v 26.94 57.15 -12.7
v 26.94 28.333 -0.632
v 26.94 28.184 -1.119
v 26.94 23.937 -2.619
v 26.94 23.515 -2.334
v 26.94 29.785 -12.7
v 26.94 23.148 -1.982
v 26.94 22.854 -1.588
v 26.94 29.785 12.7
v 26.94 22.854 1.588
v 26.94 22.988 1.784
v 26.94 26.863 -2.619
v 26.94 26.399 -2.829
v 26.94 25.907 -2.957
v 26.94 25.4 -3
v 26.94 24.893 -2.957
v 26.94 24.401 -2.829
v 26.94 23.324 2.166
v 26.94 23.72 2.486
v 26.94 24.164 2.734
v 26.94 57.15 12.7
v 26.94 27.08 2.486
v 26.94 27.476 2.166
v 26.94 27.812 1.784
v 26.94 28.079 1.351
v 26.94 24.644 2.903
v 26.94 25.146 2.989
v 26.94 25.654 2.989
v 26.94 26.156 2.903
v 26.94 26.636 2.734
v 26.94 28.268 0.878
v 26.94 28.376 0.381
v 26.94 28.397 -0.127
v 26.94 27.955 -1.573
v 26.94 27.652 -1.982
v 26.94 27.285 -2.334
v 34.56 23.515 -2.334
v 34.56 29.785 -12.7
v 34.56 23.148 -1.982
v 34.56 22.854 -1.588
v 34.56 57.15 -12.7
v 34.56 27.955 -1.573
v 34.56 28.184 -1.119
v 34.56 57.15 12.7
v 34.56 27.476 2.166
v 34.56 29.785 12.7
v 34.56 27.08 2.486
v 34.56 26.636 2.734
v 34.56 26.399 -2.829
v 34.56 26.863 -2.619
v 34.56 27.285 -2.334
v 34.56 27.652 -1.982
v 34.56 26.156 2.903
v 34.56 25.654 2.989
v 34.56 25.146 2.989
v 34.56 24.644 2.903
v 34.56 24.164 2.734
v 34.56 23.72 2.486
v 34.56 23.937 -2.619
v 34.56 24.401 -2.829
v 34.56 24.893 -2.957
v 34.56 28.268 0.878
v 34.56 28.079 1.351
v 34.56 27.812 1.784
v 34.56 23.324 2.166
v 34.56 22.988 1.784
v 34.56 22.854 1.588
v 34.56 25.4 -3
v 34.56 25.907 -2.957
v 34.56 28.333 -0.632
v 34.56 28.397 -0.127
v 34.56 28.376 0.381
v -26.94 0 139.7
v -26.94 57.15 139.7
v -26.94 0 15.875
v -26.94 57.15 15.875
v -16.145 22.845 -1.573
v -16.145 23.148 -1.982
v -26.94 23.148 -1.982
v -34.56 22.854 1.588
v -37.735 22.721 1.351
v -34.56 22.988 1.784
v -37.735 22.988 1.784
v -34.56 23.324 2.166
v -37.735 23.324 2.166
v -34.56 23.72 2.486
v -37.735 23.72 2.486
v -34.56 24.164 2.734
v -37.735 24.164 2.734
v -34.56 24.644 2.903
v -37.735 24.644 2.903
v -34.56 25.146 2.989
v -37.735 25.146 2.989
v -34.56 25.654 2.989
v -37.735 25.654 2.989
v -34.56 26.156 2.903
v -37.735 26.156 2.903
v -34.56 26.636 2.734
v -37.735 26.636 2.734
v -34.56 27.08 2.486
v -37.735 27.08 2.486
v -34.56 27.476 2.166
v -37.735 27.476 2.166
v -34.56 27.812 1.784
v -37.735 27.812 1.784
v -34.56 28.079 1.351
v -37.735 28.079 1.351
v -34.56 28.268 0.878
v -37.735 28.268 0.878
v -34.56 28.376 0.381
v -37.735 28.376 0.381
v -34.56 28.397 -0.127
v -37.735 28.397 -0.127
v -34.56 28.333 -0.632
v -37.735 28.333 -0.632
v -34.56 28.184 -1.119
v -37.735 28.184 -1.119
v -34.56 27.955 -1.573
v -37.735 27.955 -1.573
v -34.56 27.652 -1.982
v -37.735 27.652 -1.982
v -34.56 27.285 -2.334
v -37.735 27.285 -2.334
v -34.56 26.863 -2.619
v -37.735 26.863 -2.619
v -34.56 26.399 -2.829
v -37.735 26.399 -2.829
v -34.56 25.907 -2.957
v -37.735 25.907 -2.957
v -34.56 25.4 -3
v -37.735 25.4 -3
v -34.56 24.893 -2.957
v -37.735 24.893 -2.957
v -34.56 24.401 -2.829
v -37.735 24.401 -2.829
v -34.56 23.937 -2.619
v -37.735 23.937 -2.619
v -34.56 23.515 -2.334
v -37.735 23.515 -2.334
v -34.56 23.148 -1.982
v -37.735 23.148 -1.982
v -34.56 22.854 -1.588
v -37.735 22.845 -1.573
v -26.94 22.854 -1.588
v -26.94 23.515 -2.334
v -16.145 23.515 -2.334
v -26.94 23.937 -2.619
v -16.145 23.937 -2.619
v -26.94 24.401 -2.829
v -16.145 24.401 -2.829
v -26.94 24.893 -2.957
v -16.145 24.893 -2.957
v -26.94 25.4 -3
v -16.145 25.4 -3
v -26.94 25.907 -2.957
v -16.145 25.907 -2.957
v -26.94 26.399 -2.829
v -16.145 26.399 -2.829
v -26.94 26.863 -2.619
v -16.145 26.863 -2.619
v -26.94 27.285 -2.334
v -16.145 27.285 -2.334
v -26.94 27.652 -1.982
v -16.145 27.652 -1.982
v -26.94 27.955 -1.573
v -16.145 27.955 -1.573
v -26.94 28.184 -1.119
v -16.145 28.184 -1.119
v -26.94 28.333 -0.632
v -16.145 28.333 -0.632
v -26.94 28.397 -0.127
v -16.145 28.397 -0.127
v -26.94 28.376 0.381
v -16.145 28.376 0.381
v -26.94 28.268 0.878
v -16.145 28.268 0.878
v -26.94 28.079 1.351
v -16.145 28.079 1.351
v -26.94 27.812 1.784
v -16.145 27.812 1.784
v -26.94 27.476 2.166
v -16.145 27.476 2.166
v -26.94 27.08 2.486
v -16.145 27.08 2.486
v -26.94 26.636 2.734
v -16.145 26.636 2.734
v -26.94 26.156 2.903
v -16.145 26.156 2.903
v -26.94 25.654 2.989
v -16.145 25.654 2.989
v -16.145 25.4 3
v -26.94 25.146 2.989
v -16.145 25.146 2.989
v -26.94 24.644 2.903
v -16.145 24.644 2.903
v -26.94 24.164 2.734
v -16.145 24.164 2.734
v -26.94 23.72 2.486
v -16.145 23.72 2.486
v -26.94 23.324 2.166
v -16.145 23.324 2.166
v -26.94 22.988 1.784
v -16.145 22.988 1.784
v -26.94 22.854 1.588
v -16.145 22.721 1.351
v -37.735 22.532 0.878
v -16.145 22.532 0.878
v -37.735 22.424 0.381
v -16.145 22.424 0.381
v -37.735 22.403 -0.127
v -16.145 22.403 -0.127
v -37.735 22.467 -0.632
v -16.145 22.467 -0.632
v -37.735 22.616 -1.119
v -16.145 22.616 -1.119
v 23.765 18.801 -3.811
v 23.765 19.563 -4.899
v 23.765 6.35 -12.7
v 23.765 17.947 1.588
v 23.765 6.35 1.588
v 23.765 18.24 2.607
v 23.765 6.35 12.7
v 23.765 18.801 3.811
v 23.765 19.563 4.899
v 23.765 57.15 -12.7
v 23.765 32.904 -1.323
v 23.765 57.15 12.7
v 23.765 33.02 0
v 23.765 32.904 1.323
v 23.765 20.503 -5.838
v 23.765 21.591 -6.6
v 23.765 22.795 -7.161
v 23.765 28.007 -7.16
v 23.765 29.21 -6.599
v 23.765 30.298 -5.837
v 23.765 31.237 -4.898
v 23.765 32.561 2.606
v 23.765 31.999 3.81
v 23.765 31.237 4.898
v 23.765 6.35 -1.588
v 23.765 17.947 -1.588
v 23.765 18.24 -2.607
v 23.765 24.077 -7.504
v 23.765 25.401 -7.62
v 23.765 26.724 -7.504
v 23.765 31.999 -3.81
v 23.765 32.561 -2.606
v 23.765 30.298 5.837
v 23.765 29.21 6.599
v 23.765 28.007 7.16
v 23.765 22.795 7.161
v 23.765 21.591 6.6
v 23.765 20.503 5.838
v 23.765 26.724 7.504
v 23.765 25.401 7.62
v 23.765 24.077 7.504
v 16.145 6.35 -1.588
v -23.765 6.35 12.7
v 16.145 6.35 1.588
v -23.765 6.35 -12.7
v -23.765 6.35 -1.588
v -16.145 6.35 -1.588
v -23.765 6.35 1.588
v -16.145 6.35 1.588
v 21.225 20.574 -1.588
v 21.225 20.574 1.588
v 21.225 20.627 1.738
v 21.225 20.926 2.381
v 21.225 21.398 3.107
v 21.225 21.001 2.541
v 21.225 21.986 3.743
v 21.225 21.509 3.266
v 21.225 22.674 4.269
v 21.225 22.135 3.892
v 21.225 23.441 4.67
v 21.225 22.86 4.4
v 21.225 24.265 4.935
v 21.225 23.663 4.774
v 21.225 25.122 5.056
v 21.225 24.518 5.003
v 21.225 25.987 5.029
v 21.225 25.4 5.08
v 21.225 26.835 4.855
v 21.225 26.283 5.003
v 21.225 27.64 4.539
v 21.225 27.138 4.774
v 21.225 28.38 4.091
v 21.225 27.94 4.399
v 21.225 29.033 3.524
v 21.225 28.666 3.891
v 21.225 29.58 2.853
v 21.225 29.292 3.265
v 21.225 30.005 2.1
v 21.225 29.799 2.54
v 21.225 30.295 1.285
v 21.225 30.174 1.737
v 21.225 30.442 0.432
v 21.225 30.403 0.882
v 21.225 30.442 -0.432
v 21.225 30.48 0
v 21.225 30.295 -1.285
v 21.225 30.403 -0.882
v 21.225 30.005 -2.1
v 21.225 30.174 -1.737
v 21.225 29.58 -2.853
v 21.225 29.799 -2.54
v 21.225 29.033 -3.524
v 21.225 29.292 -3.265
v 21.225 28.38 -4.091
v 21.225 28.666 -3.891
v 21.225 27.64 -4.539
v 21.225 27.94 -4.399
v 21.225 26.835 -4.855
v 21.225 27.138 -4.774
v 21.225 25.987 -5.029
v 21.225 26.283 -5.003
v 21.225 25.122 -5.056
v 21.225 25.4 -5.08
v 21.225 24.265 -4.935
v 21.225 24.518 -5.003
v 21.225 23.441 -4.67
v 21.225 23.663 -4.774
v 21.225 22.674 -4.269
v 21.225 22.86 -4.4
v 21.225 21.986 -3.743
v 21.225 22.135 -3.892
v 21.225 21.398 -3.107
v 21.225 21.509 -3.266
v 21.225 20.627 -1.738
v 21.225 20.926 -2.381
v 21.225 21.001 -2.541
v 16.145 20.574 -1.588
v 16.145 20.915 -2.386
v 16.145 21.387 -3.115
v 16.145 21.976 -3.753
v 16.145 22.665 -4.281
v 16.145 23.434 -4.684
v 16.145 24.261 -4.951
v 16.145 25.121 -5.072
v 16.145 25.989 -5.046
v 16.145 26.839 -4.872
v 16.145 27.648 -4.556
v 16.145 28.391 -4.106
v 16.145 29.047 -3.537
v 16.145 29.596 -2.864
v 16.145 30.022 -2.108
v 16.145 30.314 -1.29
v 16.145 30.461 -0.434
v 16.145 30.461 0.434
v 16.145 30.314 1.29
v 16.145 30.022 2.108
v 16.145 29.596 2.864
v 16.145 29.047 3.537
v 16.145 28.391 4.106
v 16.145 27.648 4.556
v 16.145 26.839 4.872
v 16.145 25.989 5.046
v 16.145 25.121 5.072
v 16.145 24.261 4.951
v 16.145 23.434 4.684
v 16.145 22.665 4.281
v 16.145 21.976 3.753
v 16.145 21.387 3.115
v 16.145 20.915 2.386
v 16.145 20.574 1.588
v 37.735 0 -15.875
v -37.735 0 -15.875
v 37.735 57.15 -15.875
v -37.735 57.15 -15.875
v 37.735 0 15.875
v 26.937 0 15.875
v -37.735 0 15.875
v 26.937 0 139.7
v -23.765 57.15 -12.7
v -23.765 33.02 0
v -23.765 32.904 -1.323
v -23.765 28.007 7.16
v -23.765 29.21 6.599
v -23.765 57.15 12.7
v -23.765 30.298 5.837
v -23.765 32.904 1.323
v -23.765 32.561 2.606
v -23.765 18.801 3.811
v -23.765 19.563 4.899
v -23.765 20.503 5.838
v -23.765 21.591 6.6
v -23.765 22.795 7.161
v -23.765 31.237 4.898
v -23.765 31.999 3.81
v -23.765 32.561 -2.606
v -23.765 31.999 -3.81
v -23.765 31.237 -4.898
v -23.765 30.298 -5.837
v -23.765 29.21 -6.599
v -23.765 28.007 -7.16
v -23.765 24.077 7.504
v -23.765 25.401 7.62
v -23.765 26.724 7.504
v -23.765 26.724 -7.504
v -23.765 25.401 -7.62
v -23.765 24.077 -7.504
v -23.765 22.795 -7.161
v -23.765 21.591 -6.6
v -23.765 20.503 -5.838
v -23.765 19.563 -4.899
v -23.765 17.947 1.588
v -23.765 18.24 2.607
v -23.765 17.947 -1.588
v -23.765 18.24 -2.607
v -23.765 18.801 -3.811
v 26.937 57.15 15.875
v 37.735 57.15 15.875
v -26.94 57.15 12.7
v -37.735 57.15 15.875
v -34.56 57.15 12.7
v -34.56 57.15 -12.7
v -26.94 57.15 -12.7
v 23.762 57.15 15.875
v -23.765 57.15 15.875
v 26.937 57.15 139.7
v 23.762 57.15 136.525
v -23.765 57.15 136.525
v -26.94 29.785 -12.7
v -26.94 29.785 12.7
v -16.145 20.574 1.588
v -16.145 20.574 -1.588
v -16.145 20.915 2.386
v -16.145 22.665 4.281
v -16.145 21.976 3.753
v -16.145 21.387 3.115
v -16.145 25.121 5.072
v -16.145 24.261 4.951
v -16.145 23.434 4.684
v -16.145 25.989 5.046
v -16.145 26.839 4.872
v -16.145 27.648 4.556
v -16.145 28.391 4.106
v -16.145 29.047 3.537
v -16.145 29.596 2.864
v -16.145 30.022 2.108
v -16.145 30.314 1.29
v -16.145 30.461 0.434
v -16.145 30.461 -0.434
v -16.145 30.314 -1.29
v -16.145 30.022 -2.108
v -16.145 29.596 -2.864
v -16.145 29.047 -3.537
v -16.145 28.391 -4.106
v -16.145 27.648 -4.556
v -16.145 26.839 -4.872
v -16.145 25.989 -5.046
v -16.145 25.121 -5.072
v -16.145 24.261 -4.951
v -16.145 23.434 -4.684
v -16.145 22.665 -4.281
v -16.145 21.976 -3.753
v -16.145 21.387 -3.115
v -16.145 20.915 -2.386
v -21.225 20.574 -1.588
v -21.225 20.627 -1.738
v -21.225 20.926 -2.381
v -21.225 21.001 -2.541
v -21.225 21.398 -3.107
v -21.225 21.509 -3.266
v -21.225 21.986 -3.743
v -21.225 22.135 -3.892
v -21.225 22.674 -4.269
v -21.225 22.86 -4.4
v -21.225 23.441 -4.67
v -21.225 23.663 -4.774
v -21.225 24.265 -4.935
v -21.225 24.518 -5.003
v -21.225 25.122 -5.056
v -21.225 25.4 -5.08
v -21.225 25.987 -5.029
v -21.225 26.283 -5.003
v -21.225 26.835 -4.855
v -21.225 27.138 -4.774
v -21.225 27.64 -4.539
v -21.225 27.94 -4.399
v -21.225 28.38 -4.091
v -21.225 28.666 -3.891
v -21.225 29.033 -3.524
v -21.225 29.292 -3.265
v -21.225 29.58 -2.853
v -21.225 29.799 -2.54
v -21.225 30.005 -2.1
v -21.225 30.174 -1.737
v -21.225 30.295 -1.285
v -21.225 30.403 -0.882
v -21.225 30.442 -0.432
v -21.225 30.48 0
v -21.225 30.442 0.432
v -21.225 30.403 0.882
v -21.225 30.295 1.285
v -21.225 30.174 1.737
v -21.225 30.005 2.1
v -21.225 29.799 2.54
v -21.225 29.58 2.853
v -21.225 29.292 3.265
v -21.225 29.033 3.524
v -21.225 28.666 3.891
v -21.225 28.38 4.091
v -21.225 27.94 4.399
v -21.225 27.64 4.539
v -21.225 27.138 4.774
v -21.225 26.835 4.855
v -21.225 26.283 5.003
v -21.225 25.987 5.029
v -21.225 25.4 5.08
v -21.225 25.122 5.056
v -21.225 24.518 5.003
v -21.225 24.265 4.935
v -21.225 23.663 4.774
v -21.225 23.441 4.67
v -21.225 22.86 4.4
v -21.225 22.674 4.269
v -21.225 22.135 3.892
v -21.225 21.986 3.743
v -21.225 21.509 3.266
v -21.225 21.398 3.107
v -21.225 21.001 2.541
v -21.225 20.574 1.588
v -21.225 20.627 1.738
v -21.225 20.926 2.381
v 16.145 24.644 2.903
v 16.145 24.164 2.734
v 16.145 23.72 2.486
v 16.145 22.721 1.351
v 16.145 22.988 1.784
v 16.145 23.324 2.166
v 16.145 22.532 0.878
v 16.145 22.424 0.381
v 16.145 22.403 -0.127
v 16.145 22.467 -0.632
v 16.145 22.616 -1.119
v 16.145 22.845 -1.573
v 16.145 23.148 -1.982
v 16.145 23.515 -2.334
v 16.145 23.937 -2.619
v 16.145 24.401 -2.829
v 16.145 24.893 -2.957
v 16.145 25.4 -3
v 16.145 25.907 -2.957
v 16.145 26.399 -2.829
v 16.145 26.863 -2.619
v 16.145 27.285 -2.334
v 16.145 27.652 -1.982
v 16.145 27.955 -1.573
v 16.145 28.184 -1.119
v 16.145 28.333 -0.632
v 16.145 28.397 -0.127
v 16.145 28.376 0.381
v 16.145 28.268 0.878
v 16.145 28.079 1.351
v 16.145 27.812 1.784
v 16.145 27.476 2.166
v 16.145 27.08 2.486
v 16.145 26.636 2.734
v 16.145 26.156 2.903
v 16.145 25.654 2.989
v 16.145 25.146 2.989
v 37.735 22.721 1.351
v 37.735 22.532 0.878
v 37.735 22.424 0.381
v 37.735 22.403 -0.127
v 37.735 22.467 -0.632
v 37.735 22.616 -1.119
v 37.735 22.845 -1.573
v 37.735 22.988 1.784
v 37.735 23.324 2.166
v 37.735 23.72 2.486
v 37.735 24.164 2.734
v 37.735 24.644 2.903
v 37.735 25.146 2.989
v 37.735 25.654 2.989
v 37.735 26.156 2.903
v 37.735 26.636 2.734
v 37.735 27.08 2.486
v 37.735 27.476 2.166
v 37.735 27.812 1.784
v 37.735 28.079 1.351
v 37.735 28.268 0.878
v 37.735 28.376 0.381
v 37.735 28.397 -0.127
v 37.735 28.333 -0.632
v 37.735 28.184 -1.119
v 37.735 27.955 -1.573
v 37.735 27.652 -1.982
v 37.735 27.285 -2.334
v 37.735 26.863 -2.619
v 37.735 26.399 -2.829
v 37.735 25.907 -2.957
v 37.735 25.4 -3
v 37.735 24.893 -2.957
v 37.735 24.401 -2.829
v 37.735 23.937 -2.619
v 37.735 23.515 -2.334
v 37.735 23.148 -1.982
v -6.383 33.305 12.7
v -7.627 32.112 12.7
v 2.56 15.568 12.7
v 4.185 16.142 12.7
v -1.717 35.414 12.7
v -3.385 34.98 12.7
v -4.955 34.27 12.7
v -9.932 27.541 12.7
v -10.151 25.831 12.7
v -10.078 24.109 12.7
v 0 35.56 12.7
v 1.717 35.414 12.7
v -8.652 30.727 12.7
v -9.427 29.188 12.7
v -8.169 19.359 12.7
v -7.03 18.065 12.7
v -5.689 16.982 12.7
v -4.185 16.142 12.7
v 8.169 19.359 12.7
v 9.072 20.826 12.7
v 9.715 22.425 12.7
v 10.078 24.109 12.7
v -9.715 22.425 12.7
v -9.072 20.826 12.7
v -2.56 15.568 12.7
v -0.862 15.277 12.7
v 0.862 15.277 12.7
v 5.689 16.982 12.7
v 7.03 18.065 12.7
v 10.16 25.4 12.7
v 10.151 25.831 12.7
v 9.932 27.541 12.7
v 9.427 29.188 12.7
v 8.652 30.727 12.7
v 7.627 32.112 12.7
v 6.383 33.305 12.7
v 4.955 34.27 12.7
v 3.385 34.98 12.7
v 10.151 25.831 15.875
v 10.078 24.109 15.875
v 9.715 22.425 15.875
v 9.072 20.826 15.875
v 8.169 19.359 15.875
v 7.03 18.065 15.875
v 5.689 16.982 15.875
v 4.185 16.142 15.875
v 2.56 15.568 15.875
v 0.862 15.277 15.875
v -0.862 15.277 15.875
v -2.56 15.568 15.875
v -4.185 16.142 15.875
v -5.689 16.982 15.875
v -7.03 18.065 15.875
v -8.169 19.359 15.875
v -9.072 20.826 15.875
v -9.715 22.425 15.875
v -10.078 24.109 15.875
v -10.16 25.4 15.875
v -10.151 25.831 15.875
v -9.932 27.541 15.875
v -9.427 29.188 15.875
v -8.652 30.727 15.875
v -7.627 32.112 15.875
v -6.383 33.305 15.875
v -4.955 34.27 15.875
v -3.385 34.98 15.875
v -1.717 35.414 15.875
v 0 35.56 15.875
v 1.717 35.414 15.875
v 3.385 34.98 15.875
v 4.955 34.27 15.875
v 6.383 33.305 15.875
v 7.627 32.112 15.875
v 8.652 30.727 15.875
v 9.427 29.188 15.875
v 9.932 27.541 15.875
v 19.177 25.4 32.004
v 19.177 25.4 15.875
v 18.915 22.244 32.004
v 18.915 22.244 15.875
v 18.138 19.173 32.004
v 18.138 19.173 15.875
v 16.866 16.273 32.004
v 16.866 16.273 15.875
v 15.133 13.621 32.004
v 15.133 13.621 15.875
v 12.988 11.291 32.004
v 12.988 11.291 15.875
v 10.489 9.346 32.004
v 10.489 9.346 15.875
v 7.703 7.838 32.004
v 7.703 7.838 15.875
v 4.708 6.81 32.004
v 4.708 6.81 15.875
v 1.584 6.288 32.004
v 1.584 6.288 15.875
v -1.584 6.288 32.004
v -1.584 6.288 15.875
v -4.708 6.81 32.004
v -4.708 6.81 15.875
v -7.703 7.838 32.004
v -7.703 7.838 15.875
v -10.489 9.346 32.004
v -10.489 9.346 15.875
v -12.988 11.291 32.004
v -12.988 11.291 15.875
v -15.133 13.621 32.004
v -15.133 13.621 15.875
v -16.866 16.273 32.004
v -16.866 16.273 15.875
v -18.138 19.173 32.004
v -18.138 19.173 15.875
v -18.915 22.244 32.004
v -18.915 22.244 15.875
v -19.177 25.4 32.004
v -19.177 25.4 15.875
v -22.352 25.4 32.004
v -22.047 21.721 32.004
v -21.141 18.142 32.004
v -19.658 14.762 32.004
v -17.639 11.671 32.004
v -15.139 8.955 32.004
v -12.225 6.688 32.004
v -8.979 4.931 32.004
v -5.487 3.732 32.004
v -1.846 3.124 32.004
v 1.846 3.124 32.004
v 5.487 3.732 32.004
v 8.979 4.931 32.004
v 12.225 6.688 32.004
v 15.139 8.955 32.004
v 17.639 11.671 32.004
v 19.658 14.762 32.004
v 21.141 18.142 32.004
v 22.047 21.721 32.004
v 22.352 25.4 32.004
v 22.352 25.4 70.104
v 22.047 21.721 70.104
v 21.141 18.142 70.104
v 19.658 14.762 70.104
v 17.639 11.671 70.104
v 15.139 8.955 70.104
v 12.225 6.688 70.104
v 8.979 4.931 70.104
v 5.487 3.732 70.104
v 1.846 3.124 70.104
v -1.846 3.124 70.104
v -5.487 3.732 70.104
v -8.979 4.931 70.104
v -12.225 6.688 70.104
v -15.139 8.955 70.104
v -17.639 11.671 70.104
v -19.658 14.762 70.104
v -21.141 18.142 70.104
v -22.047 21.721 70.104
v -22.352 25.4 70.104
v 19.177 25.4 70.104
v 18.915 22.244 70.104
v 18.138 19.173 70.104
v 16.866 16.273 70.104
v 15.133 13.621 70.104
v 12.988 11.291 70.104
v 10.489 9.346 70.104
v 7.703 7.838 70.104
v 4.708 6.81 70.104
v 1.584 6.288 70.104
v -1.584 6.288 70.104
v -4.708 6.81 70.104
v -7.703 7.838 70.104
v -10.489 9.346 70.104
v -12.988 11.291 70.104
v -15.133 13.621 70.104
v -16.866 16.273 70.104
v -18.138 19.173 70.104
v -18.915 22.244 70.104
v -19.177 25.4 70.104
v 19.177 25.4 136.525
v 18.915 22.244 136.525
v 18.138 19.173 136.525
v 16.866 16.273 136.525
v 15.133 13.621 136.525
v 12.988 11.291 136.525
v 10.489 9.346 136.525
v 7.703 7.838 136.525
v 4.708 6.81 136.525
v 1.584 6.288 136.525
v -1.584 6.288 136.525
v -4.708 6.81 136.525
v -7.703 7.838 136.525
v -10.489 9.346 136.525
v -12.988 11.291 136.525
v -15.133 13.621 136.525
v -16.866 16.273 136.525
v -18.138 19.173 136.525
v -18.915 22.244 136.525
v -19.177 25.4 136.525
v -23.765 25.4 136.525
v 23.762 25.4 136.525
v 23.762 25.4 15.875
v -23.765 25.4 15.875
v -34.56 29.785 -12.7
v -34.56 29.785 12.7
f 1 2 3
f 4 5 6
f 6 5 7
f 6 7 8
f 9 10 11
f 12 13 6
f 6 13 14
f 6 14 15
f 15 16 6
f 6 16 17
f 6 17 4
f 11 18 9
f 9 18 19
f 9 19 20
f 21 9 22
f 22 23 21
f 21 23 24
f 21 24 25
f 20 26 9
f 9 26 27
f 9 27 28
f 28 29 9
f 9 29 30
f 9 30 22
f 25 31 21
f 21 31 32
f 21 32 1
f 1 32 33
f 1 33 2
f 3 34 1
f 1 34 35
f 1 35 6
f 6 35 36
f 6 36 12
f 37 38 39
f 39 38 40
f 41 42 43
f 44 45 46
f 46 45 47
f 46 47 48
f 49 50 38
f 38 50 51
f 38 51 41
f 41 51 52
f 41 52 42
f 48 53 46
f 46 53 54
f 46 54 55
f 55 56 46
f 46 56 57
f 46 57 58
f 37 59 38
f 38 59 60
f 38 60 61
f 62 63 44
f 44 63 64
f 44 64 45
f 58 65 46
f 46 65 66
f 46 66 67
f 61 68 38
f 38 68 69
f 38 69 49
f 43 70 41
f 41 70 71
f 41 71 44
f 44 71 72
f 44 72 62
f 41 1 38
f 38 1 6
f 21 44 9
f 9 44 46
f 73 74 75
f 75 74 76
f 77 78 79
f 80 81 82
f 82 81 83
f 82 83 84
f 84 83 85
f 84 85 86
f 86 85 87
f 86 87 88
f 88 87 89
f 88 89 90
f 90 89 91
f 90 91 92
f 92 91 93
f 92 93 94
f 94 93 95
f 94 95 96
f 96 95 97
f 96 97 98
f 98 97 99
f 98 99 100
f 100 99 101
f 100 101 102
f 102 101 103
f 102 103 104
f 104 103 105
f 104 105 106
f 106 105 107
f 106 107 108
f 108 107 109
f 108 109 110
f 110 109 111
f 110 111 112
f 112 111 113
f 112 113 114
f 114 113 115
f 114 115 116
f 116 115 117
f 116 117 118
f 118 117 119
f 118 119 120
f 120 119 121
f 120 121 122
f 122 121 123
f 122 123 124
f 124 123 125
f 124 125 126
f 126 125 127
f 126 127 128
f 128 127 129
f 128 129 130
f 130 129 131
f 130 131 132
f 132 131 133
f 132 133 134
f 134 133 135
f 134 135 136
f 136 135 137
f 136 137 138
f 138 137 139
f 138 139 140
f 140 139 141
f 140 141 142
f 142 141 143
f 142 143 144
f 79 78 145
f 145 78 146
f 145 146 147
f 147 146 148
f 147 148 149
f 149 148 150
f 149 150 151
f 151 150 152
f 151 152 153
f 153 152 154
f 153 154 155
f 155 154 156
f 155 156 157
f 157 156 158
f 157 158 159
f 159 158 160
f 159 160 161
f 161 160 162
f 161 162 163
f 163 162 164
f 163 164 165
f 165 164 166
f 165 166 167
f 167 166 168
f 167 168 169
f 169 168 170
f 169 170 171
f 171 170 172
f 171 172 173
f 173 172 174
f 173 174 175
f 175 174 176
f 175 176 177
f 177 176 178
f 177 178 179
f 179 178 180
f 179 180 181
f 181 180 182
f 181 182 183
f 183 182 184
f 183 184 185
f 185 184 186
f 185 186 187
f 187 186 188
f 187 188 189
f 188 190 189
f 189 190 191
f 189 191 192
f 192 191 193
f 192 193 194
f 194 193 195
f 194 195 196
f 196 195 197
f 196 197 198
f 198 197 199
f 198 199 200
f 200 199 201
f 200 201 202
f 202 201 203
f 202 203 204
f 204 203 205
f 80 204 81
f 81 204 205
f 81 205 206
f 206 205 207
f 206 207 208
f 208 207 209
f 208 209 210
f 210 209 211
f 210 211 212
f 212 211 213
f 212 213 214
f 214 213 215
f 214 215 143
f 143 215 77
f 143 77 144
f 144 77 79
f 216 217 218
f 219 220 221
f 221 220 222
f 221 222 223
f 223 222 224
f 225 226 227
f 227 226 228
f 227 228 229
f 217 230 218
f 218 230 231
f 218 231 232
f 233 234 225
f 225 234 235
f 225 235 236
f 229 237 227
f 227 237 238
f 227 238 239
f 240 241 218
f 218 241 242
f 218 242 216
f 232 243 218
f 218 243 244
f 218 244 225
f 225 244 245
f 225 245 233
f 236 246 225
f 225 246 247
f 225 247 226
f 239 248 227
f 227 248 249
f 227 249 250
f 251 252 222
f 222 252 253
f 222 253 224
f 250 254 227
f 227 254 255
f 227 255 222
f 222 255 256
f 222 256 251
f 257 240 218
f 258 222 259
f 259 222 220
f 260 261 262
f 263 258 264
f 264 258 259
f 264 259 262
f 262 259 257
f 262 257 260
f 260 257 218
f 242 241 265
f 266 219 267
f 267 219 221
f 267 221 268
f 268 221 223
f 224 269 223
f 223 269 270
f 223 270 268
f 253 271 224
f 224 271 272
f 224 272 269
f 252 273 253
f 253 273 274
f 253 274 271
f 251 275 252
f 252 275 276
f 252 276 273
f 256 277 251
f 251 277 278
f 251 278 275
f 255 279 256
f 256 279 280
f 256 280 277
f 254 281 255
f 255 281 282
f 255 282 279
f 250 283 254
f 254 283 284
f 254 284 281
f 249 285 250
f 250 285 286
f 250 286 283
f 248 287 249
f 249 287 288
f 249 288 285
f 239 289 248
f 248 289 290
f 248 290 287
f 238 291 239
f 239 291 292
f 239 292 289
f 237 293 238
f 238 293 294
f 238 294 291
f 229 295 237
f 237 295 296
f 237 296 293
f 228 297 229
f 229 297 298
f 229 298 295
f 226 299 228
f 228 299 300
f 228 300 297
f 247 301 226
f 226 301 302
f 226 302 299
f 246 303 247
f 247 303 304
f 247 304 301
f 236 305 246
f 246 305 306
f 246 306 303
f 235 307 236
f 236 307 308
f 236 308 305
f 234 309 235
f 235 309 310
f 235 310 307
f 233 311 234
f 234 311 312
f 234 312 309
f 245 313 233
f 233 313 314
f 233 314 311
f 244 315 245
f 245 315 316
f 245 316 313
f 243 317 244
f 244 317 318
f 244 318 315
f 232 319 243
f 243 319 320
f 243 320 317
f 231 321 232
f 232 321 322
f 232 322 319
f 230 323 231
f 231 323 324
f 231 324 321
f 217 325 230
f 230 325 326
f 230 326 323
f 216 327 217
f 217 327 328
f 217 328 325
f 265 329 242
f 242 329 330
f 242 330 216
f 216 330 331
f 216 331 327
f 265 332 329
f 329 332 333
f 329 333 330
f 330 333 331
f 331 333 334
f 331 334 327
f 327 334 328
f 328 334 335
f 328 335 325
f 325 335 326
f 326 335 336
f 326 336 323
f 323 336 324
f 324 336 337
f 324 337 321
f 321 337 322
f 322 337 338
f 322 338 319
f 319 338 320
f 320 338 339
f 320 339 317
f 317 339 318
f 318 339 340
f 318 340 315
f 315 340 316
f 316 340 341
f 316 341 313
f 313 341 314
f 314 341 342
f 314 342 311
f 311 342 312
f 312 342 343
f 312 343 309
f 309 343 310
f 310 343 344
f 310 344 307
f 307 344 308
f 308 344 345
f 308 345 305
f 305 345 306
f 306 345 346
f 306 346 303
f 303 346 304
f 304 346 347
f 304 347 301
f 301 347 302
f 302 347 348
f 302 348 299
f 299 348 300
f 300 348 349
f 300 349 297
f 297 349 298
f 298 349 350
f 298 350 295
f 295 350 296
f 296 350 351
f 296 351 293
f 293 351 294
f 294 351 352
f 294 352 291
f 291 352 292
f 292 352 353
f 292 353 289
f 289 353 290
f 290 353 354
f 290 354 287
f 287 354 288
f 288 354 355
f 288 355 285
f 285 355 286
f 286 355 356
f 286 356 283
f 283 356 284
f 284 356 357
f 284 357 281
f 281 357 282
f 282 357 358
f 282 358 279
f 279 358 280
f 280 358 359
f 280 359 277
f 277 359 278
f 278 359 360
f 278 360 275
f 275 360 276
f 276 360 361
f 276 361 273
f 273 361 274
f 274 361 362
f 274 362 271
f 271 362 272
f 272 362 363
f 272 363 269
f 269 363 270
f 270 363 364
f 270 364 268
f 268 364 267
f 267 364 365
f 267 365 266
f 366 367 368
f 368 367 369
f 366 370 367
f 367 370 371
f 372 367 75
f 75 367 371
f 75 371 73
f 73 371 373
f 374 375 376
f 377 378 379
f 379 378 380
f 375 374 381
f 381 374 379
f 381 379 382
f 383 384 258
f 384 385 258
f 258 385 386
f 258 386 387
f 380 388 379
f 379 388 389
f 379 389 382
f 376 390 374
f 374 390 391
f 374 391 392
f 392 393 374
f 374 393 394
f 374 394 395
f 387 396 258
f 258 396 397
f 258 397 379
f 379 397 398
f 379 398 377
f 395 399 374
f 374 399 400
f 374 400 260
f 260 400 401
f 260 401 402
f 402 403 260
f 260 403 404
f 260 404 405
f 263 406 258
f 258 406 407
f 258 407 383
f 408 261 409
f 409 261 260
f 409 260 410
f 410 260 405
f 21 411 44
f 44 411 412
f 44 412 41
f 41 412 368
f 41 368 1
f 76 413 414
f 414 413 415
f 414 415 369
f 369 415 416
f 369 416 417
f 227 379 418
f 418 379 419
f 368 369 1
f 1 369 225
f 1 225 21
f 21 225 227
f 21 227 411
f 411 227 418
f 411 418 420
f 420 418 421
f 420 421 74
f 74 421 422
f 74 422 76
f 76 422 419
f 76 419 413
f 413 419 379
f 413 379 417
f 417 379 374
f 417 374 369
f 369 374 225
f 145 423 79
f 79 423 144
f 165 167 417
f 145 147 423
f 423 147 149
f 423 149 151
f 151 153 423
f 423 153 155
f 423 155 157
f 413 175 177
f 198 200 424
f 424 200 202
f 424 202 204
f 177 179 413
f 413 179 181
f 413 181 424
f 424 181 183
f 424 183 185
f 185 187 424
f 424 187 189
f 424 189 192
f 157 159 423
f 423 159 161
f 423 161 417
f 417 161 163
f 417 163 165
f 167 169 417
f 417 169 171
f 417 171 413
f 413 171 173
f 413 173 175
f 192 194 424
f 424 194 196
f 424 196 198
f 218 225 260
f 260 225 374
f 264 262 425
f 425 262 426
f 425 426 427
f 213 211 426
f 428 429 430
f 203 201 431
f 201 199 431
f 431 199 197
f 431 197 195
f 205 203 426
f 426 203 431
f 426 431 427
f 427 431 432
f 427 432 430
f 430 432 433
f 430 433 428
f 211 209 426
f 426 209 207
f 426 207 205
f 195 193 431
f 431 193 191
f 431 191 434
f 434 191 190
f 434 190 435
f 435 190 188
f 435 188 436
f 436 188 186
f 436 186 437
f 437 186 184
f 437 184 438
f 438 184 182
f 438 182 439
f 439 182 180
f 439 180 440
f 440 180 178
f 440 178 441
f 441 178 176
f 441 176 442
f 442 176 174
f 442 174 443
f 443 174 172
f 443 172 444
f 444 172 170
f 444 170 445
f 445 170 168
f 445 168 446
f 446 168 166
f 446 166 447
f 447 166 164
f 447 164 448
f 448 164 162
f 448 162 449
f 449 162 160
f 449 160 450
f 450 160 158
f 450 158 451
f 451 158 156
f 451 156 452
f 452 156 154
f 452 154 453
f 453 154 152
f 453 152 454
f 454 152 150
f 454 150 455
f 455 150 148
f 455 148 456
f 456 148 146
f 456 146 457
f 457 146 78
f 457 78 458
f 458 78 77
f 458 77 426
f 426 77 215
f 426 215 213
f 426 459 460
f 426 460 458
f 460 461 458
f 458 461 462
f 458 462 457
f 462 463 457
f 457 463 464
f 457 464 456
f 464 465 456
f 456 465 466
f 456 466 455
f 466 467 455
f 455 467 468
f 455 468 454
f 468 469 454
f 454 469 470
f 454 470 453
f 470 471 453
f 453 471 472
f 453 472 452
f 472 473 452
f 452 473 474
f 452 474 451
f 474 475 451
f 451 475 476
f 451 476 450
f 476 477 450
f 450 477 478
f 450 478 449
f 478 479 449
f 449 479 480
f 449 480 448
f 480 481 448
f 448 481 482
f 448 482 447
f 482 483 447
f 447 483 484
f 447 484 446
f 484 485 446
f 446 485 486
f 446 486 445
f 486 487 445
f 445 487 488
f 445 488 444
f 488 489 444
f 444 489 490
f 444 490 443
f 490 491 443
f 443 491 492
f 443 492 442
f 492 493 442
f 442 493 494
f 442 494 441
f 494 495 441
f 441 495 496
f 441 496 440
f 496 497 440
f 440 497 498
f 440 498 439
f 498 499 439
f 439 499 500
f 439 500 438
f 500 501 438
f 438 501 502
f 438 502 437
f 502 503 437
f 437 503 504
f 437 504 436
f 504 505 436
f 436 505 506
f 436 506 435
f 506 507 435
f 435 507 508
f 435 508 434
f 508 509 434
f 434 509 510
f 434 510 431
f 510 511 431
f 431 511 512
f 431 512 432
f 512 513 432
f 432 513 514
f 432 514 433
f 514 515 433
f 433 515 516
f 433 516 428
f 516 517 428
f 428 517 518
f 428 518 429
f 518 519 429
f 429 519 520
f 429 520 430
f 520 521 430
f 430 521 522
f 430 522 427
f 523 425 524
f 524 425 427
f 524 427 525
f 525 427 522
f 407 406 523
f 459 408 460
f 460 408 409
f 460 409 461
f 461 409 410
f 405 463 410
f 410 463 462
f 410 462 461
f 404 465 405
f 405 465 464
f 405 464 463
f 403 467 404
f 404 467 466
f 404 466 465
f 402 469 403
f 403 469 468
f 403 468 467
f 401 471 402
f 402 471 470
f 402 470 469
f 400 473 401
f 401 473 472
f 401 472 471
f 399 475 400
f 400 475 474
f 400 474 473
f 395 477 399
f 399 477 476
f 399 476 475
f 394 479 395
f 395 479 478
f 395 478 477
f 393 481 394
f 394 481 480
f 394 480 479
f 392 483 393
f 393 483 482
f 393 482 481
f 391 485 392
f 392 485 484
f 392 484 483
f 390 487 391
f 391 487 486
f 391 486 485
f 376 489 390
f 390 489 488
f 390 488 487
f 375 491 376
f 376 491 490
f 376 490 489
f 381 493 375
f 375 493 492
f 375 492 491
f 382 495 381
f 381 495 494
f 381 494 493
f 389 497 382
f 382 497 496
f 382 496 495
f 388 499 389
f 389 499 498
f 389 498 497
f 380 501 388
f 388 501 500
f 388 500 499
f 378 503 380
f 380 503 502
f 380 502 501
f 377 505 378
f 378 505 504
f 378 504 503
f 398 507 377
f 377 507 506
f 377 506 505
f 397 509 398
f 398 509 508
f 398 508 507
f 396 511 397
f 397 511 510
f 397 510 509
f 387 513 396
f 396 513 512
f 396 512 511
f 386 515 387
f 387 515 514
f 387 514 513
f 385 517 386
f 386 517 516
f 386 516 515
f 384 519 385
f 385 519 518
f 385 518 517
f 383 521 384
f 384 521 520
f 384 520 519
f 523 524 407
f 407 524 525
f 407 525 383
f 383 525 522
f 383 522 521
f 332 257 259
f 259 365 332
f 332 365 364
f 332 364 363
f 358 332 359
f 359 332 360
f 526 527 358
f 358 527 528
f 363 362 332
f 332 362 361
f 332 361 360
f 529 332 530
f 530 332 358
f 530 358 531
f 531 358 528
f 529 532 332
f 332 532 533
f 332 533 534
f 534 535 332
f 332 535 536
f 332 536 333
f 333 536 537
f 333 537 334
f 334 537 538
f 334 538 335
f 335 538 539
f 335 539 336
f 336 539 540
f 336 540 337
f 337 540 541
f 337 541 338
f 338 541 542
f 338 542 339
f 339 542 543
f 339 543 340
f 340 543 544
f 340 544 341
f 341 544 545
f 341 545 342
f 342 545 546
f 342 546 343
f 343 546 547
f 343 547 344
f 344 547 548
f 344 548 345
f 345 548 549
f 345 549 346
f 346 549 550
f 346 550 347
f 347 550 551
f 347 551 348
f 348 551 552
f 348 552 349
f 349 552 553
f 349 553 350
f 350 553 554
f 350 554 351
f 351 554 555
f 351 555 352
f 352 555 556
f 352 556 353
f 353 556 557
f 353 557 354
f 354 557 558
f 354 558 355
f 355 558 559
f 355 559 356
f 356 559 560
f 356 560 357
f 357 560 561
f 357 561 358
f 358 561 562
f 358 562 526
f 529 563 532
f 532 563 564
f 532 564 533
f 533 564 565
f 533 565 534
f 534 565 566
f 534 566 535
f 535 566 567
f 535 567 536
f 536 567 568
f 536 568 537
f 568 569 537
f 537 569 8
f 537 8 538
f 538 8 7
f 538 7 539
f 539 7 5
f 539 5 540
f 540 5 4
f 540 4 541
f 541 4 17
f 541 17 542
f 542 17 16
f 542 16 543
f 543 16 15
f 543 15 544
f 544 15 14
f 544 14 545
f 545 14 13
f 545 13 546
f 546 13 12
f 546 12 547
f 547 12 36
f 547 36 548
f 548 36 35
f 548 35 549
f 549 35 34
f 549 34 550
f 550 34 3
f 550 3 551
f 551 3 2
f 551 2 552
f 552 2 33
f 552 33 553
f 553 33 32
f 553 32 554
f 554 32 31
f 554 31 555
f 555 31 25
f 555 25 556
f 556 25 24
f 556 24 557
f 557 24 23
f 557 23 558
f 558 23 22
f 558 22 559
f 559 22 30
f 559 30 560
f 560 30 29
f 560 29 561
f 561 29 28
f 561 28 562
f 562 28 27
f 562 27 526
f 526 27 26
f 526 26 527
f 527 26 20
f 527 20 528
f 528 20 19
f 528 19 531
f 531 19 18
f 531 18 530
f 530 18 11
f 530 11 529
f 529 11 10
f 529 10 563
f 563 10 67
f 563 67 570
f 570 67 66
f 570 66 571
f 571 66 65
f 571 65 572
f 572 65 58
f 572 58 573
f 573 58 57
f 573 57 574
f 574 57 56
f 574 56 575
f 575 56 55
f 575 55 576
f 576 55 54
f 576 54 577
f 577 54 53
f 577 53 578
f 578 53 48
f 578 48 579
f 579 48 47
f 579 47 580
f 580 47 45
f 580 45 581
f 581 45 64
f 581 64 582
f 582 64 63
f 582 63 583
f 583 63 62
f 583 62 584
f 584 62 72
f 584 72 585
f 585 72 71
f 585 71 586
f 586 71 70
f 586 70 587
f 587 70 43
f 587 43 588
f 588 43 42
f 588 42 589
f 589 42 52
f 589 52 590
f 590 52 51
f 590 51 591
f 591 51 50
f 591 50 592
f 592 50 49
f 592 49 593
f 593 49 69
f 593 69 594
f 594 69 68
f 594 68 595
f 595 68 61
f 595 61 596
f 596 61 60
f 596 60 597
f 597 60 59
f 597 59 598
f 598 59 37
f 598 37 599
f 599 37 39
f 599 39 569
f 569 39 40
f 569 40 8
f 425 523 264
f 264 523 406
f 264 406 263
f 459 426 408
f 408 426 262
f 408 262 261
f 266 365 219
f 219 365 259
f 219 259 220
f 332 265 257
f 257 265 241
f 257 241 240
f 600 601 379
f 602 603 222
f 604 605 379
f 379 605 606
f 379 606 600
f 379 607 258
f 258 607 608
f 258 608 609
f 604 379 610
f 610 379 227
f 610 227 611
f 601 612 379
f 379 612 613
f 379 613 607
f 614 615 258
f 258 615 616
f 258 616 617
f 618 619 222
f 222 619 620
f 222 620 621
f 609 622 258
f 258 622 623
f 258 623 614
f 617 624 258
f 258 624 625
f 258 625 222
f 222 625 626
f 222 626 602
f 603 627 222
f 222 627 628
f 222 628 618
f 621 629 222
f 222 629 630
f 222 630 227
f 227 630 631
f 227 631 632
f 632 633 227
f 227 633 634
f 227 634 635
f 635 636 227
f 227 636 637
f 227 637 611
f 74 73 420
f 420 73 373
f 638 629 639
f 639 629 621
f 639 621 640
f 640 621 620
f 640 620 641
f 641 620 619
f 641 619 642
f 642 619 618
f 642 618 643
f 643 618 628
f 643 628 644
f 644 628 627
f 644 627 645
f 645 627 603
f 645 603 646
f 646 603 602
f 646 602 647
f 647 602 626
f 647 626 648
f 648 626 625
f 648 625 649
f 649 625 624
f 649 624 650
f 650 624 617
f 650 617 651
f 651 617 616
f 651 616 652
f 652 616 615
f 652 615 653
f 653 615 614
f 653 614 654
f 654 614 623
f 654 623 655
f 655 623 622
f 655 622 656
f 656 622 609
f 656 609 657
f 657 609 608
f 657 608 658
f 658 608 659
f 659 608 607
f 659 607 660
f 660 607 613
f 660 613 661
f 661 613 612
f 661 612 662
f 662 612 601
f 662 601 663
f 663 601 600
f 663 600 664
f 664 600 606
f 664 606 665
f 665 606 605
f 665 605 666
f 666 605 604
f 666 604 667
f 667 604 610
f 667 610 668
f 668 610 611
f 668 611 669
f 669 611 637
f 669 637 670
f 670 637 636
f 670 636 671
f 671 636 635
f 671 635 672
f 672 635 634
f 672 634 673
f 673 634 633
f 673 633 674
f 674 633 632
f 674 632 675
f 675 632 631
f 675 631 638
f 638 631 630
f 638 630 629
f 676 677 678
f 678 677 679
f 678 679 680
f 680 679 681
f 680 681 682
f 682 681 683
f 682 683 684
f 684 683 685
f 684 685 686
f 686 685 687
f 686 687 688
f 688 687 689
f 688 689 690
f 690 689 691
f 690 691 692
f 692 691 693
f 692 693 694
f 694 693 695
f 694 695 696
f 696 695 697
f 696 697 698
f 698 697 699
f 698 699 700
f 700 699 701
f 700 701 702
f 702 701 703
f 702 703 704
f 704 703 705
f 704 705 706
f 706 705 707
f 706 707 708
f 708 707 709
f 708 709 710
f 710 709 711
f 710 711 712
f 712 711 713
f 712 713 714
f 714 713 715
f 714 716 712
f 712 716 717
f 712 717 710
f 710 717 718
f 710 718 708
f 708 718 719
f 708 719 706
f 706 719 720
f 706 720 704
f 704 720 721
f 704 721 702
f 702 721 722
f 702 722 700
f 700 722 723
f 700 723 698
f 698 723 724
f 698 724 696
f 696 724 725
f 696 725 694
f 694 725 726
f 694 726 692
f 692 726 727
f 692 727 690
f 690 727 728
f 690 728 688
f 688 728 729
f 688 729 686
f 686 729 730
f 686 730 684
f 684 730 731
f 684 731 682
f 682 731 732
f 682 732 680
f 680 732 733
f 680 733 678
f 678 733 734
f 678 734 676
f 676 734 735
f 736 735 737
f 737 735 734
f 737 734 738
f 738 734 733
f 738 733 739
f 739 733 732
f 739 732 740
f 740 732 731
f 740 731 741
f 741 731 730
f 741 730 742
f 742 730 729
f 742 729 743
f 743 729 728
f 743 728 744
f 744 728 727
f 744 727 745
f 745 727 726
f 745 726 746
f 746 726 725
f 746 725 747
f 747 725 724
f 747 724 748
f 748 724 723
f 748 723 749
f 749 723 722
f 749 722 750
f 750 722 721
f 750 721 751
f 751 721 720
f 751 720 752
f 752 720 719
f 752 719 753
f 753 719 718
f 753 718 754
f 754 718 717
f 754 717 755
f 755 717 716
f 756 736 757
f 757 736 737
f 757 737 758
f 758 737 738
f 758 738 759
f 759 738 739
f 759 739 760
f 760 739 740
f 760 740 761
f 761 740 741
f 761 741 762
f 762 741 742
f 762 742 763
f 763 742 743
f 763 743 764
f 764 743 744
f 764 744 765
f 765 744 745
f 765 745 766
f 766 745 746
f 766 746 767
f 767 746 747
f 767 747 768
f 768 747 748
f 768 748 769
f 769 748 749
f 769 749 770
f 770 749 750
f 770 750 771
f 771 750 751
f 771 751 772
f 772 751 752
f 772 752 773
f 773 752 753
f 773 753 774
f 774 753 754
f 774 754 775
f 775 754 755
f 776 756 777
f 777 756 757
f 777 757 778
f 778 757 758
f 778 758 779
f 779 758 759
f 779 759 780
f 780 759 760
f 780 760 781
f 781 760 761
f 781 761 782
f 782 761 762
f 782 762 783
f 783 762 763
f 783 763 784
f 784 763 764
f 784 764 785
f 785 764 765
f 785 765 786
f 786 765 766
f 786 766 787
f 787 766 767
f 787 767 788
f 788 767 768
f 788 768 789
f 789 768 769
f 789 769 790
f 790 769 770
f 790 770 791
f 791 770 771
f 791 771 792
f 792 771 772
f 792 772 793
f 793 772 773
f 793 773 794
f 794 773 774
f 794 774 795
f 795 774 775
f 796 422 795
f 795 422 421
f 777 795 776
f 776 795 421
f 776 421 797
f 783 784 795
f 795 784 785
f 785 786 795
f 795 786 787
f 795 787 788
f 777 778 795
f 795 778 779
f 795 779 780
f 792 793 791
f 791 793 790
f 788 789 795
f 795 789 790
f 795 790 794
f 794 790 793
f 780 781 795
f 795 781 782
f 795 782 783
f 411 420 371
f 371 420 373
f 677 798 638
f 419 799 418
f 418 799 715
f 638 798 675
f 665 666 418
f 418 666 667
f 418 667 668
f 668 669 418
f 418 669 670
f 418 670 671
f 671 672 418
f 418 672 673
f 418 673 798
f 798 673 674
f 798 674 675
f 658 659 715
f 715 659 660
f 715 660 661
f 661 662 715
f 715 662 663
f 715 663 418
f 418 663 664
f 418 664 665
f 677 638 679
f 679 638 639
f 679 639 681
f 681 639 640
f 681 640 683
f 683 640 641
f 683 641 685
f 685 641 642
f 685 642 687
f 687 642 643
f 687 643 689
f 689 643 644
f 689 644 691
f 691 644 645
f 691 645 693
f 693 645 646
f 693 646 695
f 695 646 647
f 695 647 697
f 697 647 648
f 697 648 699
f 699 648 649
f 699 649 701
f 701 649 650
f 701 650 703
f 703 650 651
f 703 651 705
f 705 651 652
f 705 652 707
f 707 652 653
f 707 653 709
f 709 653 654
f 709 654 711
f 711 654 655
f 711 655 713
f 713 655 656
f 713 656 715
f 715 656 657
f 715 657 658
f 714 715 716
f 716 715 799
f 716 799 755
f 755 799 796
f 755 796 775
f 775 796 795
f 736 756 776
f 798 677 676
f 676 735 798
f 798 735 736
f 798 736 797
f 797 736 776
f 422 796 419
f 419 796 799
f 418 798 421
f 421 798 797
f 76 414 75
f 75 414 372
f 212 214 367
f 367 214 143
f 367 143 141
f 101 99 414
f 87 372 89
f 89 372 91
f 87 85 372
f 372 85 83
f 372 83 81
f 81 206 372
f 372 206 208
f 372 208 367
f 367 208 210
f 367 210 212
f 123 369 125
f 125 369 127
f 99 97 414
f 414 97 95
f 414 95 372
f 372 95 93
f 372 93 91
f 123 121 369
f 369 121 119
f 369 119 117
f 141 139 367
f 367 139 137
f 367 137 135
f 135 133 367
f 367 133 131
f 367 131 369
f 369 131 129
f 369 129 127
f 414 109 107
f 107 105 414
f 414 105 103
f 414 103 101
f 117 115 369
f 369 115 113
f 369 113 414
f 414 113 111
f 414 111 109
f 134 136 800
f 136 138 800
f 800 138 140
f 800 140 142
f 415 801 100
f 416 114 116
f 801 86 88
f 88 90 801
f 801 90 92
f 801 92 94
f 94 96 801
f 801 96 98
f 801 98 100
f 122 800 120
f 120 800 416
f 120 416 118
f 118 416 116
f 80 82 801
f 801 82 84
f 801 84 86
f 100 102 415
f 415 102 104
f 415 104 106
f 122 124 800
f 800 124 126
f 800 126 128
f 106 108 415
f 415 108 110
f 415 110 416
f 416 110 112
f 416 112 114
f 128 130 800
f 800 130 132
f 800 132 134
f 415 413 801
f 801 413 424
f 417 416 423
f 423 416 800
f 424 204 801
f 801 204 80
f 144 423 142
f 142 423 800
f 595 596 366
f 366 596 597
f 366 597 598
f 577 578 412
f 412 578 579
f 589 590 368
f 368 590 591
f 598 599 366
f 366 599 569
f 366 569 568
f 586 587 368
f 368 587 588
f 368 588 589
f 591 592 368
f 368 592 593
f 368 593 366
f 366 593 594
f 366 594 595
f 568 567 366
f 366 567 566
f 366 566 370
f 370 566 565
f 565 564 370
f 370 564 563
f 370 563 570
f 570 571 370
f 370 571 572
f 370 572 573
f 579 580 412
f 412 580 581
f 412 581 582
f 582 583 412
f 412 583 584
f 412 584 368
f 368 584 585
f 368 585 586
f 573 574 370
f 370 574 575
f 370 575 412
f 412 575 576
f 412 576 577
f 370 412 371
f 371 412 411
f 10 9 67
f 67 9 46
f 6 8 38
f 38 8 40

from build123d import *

# Parameters (mm, degrees)
BOSS_EXTRUDE1_DEPTH      = 12.7
SKETCH2_W                = 53.879496
SKETCH2_H                = 57.15
BOSS_EXTRUDE2_DEPTH      = 3.175
CUT_EXTRUDE2_DEPTH       = 66.145131417
CUT_EXTRUDE2_DEPTH_BACK  = 66.145131417
SKETCH3_R                = 3
SKETCH5_W                = 53.879496
SKETCH5_H                = 25.4
SKETCH5_R                = 3.4925
BOSS_EXTRUDE3_DEPTH      = 6.35
SKETCH7_W                = 7.62
SKETCH7_H                = 15.609396712
BOSS_EXTRUDE7_DEPTH      = 1.5875
SKETCH8_W                = 53.879496
SKETCH8_H                = 57.15
BOSS_EXTRUDE8_DEPTH      = 127
CUT_EXTRUDE7_DEPTH       = 154.323065852
CUT_EXTRUDE7_DEPTH_BACK  = 154.323065852
SKETCH13_W               = 0.002356984
SKETCH13_H               = 124.229061331
CUT_EXTRUDE8_START       = -31.75
SKETCH14_W               = 47.527139016
SKETCH14_H               = 120.65
CUT_EXTRUDE8_DEPTH       = 31.75
CUT_EXTRUDE9_DEPTH       = 4.229066359
SKETCH16_W               = 53.879496
SKETCH16_H               = 25.4
CUT_EXTRUDE10_DEPTH      = 152.071109158
SKETCH18_W               = 13.97
SKETCH18_H               = 31.75
SKETCH18_W_2             = 7.62
SKETCH18_H_2             = 25.4
BOSS_EXTRUDE10_DEPTH     = 57.15
BOSS_EXTRUDE11_START     = -34.559748
BOSS_EXTRUDE11_DEPTH     = 7.62
BOSS_EXTRUDE12_START     = 26.939748
BOSS_EXTRUDE12_DEPTH     = 7.62
CUT_EXTRUDE11_DEPTH      = 163.985890519
CUT_EXTRUDE11_DEPTH_BACK = 163.985890519
SKETCH20_R               = 3


with BuildPart() as part:
    # Sketch1 → Boss-Extrude1 (new, symmetric)
    with BuildSketch(Plane.XY):
        Polygon((-26.939748, 0), (26.939748, 0), (26.939748, 6.35), (26.939748, 57.15), (23.764748, 57.15), (23.764748, 6.35), (-23.764748, 6.35), (-23.764748, 57.15), (-26.939748, 57.15), (-26.939748, 6.35), align=None)
    extrude(amount=BOSS_EXTRUDE1_DEPTH, both=True)

    # Sketch2 → Boss-Extrude2 (add)
    with BuildSketch(Plane(origin=(0, 0, -12.7), x_dir=(-1, 0, 0), z_dir=(0, 0, -1))):
        with Locations((0, 28.575)):
            Rectangle(SKETCH2_W, SKETCH2_H)
    extrude(amount=BOSS_EXTRUDE2_DEPTH)

    # Sketch6 → Revolve2 (revolve)
    with BuildSketch(Plane.XY, mode=Mode.PRIVATE) as revolve2_sk:
        Polygon((-23.764748, 25.4), (-16.144748, 25.4), (-16.144748, 30.48), (-21.224748, 30.48), (-23.764748, 33.02), align=None)
        Polygon((23.764748, 33.02), (23.764748, 25.4), (16.144748, 25.4), (16.144748, 30.48), (21.224748, 30.48), align=None)
    revolve(revolve2_sk.sketch.rotate(Axis((-23.764748, 25.4, 0), (1, 0, 0)), 90), axis=Axis((-23.764748, 25.4, 0), (1, 0, 0)))

    # Sketch3 → Cut-Extrude2 (cut, two sides: drawn at the far end of the back side and taken through both)
    with BuildSketch(Plane(origin=(0, 0, 0), x_dir=(0, 0, -1), z_dir=(1, 0, 0)).offset(-CUT_EXTRUDE2_DEPTH_BACK)):
        with Locations((0, 25.4)):
            Circle(SKETCH3_R)
    extrude(amount=CUT_EXTRUDE2_DEPTH + CUT_EXTRUDE2_DEPTH_BACK, mode=Mode.SUBTRACT)

    # Sketch5 → Boss-Extrude3 (add)
    with BuildSketch(Plane.XZ):
        with Locations((0, -28.575)):
            Rectangle(SKETCH5_W, SKETCH5_H)
        with Locations(Location((7.889748, -28.575, 0), (0, 0, 270))):
            Circle(SKETCH5_R, mode=Mode.SUBTRACT)
        with Locations(Location((-17.510252, -28.575, 0), (0, 0, 270))):
            Circle(SKETCH5_R, mode=Mode.SUBTRACT)
    extrude(amount=-BOSS_EXTRUDE3_DEPTH)

    # Sketch7 → Boss-Extrude7 (add, symmetric)
    with BuildSketch(Plane.XY):
        with Locations((-19.954748, 14.154698356)):
            Rectangle(SKETCH7_W, SKETCH7_H)
        with Locations((19.954748, 14.154698356)):
            Rectangle(SKETCH7_W, SKETCH7_H)
    extrude(amount=BOSS_EXTRUDE7_DEPTH, both=True)

    # Sketch8 → Boss-Extrude8 (add)
    with BuildSketch(Plane.XY.offset(12.7)):
        with Locations((0, 28.575)):
            Rectangle(SKETCH8_W, SKETCH8_H)
    extrude(amount=BOSS_EXTRUDE8_DEPTH)

    # Sketch9 → Cut-Revolve1 (revolve, cut)
    with BuildSketch(Plane(origin=(0, 0, 0), x_dir=(0, 0, -1), z_dir=(1, 0, 0))):
        Polygon((-70.104, 47.752), (-70.104, 44.577), (-136.525, 44.577), (-136.525, 25.4), (-70.104, 25.4), (0, 25.4), (0, 35.56), (-20.104066359, 35.56), (-20.104066359, 44.577), (-32.004, 44.577), (-32.004, 47.752), align=None)
    revolve(axis=Axis((0, 25.4, 0), (0, 0, 1)), mode=Mode.SUBTRACT)

    # Sketch13 → Cut-Extrude7 (cut, two sides: drawn at the far end of the back side and taken through both)
    with BuildSketch(Plane(origin=(0, 0, 0), x_dir=(-1, 0, 0), z_dir=(0, -1, 0)).offset(-CUT_EXTRUDE7_DEPTH_BACK)):
        with Locations((26.940926492, -77.585469335)):
            Rectangle(SKETCH13_W, SKETCH13_H)
        with Locations((-26.938569508, -77.585469335)):
            Rectangle(SKETCH13_W, SKETCH13_H)
    extrude(amount=CUT_EXTRUDE7_DEPTH + CUT_EXTRUDE7_DEPTH_BACK, mode=Mode.SUBTRACT)

    # Sketch14 → Cut-Extrude8 (cut)
    with BuildSketch(Plane(origin=(0, 57.15, 0), x_dir=(1, 0, 0), z_dir=(0, 1, 0)).offset(CUT_EXTRUDE8_START)):
        with Locations((-0.001178492, -76.2)):
            Rectangle(SKETCH14_W, SKETCH14_H)
    extrude(amount=CUT_EXTRUDE8_DEPTH, mode=Mode.SUBTRACT)

    # Sketch15 → Cut-Extrude9 (cut)
    with BuildSketch(Plane.XY.offset(20.104066359)):
        with BuildLine():
            Line((-10.16, 25.4), (-19.177, 25.4))
            ThreePointArc((-19.177, 25.4), (0, 6.223), (19.177, 25.4))
            Line((19.177, 25.4), (10.16, 25.4))
            ThreePointArc((10.16, 25.4), (0, 15.24), (-10.16, 25.4))
        make_face()
    extrude(amount=-CUT_EXTRUDE9_DEPTH, mode=Mode.SUBTRACT)

    # Sketch16 → Cut-Extrude10 (cut, through all)
    with BuildSketch(Plane(origin=(0, 6.35, 0), x_dir=(1, 0, 0), z_dir=(0, 1, 0))):
        with Locations((0, 28.575)):
            Rectangle(SKETCH16_W, SKETCH16_H)
    extrude(amount=-CUT_EXTRUDE10_DEPTH, mode=Mode.SUBTRACT)

    # Sketch18 → Boss-Extrude10 (add)
    with BuildSketch(Plane(origin=(0, 0, 0), x_dir=(1, 0, 0), z_dir=(0, 1, 0))):
        with Locations((-30.749748, 0)):
            Rectangle(SKETCH18_W, SKETCH18_H)
        with Locations((-30.749748, 0)):
            Rectangle(SKETCH18_W_2, SKETCH18_H_2, mode=Mode.SUBTRACT)
    boss_extrude10 = extrude(amount=BOSS_EXTRUDE10_DEPTH)

    # Sketch19 → Boss-Extrude11 (add)
    with BuildSketch(Plane(origin=(0, 0, 0), x_dir=(0, 0, -1), z_dir=(1, 0, 0)).offset(BOSS_EXTRUDE11_START)):
        with BuildLine():
            Line((1.5875, 22.854446278), (12.7, 29.784605952))
            Line((12.7, 29.784605952), (12.7, 0))
            Line((12.7, 0), (-12.7, 0))
            Line((-12.7, 0), (-12.7, 29.784605952))
            Line((-12.7, 29.784605952), (-1.5875, 22.854446278))
            ThreePointArc((-1.5875, 22.854446278), (0, 22.4), (1.5875, 22.854446278))
        make_face()
    extrude(amount=BOSS_EXTRUDE11_DEPTH)

    # Mirror4: Boss-Extrude10 across plane
    add(boss_extrude10.mirror(Plane(origin=(0, 0, 0), x_dir=(0, 0, 1), z_dir=(1, 0, 0))))

    # Sketch19<2> → Boss-Extrude12 (add)
    with BuildSketch(Plane(origin=(0, 0, 0), x_dir=(0, 0, -1), z_dir=(1, 0, 0)).offset(BOSS_EXTRUDE12_START)):
        with BuildLine():
            Line((1.5875, 22.854446278), (12.7, 29.784605952))
            Line((12.7, 29.784605952), (12.7, 0))
            Line((12.7, 0), (-12.7, 0))
            Line((-12.7, 0), (-12.7, 29.784605952))
            Line((-12.7, 29.784605952), (-1.5875, 22.854446278))
            ThreePointArc((-1.5875, 22.854446278), (0, 22.4), (1.5875, 22.854446278))
        make_face()
    extrude(amount=BOSS_EXTRUDE12_DEPTH)

    # Sketch20 → Cut-Extrude11 (cut, two sides: drawn at the far end of the back side and taken through both)
    with BuildSketch(Plane(origin=(-23.764748, 0, 0), x_dir=(0, 0, -1), z_dir=(1, 0, 0)).offset(-CUT_EXTRUDE11_DEPTH_BACK)):
        with Locations((0, 25.4)):
            Circle(SKETCH20_R)
    extrude(amount=CUT_EXTRUDE11_DEPTH + CUT_EXTRUDE11_DEPTH_BACK, mode=Mode.SUBTRACT)


solid = part.part
